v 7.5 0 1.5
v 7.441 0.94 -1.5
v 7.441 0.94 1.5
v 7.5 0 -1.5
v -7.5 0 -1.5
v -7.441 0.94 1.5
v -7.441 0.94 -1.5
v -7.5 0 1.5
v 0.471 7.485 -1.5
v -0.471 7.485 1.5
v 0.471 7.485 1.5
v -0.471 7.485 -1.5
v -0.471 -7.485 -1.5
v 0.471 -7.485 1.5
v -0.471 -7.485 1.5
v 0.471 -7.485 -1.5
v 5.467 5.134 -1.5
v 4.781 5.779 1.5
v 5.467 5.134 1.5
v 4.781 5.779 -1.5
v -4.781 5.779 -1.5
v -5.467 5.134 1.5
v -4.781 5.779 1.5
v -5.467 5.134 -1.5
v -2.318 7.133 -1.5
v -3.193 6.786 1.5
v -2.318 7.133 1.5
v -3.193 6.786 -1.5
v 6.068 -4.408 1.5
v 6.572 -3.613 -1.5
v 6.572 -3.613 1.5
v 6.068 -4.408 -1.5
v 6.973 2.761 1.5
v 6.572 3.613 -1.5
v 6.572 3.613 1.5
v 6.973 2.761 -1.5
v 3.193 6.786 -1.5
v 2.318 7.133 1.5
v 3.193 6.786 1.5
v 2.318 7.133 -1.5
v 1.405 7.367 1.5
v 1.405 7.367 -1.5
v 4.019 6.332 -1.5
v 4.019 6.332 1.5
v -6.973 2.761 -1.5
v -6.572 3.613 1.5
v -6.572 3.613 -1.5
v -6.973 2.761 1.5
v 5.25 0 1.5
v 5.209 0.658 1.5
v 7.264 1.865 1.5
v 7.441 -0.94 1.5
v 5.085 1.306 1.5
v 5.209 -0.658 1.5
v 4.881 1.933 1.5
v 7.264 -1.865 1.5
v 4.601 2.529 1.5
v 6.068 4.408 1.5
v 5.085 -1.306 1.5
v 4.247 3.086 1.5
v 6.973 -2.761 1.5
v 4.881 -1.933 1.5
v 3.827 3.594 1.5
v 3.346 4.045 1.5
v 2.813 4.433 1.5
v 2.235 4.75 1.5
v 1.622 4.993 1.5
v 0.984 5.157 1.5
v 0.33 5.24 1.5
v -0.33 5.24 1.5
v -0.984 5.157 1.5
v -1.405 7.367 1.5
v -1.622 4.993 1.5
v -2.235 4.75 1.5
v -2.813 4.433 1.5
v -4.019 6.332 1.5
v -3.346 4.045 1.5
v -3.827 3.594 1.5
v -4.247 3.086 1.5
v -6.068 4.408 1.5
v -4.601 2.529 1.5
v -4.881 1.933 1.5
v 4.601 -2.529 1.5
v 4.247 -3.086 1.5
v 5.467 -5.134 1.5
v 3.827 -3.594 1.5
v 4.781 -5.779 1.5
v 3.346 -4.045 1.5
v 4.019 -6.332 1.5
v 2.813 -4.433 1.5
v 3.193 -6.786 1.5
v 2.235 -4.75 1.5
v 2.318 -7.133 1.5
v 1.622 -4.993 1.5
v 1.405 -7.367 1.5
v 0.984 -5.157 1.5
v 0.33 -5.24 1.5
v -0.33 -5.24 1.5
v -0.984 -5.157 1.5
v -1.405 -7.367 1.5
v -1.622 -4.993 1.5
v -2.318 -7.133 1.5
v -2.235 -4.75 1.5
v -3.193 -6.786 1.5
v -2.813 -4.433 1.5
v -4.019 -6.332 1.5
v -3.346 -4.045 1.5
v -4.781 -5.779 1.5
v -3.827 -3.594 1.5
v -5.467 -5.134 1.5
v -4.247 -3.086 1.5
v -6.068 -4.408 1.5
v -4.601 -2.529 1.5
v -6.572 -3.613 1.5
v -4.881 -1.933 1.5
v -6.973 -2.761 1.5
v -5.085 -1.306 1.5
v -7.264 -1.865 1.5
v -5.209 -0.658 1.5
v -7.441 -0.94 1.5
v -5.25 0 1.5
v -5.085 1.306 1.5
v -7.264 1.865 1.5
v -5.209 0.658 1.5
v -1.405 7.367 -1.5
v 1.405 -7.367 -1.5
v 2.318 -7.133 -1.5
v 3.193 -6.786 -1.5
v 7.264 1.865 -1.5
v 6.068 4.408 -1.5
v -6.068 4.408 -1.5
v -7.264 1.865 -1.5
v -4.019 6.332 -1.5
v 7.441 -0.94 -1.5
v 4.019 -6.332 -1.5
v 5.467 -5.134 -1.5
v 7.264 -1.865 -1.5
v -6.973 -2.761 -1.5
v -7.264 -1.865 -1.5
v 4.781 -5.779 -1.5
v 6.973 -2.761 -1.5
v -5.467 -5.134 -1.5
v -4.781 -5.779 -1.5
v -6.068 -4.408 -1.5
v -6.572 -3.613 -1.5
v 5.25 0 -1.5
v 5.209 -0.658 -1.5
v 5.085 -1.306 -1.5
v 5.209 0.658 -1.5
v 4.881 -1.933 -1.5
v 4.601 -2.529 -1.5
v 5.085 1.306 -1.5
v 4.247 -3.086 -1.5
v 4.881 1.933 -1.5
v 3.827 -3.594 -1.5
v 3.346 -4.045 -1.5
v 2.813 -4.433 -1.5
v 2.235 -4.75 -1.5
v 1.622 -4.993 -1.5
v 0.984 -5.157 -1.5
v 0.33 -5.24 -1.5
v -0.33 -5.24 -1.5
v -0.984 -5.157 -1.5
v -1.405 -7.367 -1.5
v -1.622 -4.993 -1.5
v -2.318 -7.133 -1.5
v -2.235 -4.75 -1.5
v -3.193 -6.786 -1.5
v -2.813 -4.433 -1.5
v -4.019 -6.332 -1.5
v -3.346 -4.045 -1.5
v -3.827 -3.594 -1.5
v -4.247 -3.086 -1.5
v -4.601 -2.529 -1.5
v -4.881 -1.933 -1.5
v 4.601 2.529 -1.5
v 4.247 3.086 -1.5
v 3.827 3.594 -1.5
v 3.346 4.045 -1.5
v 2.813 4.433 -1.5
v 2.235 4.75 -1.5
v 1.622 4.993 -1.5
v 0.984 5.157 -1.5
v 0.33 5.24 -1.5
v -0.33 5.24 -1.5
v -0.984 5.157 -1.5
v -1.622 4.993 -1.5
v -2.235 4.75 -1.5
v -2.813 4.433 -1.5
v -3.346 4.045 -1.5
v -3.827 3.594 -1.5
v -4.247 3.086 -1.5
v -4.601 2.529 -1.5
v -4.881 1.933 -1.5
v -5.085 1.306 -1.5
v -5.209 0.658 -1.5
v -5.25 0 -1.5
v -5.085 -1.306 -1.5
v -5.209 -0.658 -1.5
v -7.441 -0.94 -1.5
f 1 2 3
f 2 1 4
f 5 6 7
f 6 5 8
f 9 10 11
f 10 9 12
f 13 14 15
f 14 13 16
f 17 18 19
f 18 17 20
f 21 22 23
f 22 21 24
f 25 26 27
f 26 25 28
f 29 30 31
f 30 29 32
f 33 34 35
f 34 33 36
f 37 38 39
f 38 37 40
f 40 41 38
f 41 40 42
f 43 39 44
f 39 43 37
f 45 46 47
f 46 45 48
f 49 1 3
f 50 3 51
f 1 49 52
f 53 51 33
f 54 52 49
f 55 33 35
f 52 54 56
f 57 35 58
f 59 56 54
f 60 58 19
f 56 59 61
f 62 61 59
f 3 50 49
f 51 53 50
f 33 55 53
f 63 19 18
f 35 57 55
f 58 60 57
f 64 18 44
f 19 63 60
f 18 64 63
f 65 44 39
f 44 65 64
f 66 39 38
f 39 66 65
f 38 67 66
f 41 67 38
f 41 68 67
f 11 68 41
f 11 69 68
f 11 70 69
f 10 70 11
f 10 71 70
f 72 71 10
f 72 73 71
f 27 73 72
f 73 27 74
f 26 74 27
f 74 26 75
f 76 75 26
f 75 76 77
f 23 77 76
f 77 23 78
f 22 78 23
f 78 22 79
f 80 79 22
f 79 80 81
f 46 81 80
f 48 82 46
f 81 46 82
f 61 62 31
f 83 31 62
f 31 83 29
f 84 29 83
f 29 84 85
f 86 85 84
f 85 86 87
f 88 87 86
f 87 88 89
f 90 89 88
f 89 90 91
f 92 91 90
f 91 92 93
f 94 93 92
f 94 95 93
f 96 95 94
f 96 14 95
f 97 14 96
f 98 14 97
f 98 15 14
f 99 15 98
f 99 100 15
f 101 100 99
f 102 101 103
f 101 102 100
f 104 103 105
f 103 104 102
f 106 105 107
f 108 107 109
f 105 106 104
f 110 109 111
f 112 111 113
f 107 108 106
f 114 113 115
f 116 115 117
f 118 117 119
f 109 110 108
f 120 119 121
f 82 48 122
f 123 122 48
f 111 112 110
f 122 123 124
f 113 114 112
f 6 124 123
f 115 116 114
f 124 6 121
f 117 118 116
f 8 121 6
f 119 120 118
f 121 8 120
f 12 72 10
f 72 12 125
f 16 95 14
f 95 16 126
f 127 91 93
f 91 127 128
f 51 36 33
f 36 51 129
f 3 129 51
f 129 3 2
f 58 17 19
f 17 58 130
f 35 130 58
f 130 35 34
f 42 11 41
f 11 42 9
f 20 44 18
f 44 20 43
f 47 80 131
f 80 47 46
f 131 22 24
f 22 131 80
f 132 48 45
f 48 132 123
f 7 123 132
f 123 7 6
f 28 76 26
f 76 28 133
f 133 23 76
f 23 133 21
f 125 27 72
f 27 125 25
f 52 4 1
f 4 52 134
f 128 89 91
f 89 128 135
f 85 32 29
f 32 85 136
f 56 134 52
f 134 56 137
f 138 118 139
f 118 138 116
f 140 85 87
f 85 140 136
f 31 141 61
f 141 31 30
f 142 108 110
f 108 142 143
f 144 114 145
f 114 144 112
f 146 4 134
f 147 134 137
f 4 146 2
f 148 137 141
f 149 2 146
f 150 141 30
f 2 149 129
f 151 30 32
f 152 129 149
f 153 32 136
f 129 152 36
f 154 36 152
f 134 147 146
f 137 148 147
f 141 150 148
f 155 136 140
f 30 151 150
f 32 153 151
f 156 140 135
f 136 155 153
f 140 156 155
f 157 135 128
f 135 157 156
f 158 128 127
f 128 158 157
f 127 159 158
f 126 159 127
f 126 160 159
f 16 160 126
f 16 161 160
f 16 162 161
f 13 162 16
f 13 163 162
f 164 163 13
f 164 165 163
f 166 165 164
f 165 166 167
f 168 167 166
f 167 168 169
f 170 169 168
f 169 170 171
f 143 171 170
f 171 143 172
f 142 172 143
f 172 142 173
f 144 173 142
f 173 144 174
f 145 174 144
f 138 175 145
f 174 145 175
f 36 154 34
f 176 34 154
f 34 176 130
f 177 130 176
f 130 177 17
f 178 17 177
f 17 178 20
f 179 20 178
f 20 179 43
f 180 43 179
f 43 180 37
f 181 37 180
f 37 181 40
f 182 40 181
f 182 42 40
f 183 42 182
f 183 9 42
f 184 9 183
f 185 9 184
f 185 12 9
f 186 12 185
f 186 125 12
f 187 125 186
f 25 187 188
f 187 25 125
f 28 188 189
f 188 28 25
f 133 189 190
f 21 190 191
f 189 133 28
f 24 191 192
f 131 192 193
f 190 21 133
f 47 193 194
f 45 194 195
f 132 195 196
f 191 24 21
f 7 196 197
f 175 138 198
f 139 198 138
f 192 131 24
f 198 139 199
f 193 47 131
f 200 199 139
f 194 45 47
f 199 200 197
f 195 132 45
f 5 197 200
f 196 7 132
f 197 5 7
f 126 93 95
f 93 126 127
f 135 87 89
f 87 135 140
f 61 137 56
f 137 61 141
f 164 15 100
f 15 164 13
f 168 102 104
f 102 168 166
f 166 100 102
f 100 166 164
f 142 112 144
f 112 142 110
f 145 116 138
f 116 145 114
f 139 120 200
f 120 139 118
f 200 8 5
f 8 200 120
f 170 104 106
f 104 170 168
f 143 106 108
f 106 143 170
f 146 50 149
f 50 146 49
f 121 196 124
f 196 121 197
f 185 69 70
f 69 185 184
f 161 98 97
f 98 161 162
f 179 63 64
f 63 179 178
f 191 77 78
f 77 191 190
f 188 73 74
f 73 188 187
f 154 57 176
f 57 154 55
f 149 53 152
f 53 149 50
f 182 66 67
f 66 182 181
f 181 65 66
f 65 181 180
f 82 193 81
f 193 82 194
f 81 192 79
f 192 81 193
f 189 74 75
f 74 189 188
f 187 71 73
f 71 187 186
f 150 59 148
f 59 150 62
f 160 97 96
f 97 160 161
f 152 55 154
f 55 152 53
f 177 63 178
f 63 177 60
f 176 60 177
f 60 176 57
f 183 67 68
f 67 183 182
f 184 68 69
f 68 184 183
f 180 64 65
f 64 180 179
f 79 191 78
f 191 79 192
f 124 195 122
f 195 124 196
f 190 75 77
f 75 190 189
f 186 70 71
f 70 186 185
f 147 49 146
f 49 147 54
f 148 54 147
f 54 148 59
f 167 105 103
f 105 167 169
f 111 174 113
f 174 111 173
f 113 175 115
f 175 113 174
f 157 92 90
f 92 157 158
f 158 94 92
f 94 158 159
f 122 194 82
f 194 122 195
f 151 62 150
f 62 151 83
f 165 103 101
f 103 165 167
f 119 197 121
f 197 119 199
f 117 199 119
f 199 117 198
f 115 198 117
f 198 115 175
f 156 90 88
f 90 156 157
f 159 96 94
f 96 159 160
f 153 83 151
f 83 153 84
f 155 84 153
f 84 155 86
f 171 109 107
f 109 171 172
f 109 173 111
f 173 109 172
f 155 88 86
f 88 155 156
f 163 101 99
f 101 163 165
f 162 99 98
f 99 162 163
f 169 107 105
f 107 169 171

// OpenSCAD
$fn = 50;


difference() {
	union() {
		translate(v = [0, 0, -1.5000000000]) {
			cylinder(h = 3, r = 7.5000000000);
		}
	}
	union() {
		translate(v = [0, 0, -100.0000000000]) {
			cylinder(h = 200, r = 5.2500000000);
		}
	}
}
